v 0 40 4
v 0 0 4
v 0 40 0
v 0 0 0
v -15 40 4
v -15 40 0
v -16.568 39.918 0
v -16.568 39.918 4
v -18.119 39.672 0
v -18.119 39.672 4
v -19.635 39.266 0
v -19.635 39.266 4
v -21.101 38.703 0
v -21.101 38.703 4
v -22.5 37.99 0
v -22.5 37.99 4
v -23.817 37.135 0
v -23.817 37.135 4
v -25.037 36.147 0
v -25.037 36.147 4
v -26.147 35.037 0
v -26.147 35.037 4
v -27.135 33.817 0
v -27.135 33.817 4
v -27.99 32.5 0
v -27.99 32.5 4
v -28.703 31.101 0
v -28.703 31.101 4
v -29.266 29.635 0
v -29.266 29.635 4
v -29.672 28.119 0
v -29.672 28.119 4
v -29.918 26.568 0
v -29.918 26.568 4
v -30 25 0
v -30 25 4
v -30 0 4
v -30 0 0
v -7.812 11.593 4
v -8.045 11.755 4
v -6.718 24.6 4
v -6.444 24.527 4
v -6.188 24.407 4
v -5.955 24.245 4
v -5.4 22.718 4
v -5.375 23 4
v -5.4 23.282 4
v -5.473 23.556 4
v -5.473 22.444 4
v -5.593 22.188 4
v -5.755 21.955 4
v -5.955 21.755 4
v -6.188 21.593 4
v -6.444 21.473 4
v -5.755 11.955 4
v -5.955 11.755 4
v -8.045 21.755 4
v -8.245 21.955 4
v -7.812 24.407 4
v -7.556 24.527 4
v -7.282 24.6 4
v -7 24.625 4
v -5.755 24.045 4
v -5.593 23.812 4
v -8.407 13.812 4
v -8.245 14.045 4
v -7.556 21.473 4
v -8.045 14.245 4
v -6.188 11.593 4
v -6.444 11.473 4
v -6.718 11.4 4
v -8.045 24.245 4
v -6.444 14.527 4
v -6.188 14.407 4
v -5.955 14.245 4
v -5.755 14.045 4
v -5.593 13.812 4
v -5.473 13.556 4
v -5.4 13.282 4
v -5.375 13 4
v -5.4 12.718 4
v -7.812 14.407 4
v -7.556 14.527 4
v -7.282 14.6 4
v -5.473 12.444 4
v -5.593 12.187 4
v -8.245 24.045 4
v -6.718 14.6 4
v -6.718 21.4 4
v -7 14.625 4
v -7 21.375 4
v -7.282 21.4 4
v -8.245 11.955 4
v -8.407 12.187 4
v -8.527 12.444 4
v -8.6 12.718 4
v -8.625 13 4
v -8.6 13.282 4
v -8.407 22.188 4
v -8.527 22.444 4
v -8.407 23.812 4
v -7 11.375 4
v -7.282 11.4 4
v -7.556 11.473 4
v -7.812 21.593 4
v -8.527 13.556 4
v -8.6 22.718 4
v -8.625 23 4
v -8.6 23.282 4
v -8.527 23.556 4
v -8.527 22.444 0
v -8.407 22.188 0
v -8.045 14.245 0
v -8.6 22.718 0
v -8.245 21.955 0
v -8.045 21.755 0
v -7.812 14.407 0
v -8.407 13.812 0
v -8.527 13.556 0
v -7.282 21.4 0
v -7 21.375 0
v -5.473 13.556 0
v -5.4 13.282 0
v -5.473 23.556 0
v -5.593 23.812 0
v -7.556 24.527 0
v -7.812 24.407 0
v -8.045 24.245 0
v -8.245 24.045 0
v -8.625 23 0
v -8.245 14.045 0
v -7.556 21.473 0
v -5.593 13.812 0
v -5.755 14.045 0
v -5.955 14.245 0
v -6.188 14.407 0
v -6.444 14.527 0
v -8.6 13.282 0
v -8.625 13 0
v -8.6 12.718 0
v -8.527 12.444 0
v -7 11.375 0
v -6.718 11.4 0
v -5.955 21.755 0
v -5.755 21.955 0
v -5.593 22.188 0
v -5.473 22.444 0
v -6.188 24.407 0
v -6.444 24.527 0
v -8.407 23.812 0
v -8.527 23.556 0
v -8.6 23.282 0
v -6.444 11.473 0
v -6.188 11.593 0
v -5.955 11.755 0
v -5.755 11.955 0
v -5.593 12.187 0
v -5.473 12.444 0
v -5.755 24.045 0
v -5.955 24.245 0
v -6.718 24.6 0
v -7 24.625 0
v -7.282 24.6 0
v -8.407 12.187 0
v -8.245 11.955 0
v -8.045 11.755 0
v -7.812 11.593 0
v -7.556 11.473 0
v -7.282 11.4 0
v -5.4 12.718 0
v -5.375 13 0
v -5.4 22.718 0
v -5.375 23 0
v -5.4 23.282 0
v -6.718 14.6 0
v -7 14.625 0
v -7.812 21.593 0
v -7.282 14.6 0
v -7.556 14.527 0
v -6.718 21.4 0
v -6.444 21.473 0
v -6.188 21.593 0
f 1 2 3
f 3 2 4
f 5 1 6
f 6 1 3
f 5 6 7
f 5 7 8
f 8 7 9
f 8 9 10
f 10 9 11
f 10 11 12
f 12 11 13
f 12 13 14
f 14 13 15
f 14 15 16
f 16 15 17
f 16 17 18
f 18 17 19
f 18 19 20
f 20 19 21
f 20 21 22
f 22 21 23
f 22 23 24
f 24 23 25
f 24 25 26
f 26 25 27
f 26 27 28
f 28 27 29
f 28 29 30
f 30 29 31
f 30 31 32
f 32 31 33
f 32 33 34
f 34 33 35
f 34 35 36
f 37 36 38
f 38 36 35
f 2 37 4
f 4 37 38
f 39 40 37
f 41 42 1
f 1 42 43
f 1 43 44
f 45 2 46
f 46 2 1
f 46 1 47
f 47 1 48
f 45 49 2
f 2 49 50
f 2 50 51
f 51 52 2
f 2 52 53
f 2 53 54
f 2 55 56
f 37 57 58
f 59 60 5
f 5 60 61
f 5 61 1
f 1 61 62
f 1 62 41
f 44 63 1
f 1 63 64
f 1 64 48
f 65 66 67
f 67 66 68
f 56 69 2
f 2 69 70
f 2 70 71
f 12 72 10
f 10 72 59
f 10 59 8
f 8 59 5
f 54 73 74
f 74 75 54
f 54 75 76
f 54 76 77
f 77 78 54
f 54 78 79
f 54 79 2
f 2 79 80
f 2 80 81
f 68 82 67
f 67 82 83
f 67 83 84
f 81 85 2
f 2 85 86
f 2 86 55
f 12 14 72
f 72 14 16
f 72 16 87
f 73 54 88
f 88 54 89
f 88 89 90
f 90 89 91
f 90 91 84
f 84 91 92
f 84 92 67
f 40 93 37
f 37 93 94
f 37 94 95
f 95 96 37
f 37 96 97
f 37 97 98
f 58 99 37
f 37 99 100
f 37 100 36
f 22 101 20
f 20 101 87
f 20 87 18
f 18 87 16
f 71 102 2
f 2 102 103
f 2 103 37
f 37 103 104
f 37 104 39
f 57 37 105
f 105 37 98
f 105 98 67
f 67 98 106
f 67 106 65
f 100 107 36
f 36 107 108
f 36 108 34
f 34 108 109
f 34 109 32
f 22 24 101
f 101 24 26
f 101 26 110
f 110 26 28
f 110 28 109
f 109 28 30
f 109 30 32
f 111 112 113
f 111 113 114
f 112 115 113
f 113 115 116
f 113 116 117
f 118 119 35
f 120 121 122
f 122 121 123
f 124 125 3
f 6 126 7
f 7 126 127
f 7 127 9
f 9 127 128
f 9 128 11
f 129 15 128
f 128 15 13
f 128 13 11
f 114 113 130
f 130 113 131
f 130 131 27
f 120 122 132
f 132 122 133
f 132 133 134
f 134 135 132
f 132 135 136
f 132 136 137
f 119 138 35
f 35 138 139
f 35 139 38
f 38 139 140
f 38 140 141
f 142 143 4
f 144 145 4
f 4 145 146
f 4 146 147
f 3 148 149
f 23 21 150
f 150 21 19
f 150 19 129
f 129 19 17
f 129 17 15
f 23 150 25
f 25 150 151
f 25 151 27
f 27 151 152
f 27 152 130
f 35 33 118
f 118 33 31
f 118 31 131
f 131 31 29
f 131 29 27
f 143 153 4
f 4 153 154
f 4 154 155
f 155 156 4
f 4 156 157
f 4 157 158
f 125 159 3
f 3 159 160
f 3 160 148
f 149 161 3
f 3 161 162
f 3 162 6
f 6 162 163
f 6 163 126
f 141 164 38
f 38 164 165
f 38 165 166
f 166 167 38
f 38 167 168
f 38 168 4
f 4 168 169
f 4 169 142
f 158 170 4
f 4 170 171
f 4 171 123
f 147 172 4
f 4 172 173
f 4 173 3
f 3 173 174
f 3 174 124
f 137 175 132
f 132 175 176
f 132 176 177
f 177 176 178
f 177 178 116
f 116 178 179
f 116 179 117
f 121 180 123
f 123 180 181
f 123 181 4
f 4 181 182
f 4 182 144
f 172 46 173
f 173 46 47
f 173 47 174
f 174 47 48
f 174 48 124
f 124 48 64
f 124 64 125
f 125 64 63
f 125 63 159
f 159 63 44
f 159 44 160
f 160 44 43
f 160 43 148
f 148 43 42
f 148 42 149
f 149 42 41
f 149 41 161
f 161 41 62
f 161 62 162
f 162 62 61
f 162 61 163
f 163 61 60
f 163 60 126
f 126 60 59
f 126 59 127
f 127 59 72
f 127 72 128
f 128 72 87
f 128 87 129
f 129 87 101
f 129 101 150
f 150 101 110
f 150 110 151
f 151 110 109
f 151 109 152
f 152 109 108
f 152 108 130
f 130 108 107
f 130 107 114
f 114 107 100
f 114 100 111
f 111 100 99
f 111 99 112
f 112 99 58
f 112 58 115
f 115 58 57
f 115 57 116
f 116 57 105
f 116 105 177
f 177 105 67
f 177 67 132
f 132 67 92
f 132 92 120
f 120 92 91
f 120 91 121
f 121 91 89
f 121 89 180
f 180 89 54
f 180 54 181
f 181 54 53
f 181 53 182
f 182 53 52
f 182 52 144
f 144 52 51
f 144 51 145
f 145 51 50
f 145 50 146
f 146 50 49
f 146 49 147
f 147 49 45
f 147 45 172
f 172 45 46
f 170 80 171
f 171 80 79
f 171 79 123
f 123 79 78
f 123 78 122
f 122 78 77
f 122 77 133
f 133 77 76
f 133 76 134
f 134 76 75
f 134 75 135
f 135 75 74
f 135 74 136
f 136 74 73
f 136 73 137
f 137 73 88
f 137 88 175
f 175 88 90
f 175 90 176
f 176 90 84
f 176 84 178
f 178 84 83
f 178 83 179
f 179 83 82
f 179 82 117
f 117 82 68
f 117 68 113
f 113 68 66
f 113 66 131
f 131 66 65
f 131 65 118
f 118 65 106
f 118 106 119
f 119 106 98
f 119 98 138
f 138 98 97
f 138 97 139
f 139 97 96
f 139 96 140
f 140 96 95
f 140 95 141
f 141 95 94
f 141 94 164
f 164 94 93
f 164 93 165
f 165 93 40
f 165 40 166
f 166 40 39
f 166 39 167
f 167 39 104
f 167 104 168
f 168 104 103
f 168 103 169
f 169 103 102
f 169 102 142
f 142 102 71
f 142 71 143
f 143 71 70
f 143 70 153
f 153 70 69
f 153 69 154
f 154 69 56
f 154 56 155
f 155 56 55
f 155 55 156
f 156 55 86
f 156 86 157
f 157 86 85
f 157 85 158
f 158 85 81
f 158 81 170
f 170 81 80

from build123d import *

# Parameters (mm, degrees)
BOSS_EXTRUDE1_DEPTH = 4
SKETCH2_R           = 1.625
CUT_EXTRUDE1_DEPTH  = 51.159744816


with BuildPart() as part:
    # Sketch1 → Boss-Extrude1 (new body)
    with BuildSketch(Plane.XY):
        with BuildLine():
            Line((0, 35), (0, 40))
            Line((0, 40), (-15, 40))
            ThreePointArc((-15, 40), (-25.606601718, 35.606601718), (-30, 25))
            Line((-30, 25), (-30, 0))
            Line((-30, 0), (0, 0))
            Line((0, 0), (0, 35))
        make_face()
    extrude(amount=BOSS_EXTRUDE1_DEPTH)

    # Sketch2 → Cut-Extrude1 (cut, through all)
    with BuildSketch(Plane.XY.offset(4)):
        with Locations((-7, 23)):
            Circle(SKETCH2_R)
        with Locations((-7, 13)):
            Circle(SKETCH2_R)
    extrude(amount=-CUT_EXTRUDE1_DEPTH, mode=Mode.SUBTRACT)


solid = part.part
